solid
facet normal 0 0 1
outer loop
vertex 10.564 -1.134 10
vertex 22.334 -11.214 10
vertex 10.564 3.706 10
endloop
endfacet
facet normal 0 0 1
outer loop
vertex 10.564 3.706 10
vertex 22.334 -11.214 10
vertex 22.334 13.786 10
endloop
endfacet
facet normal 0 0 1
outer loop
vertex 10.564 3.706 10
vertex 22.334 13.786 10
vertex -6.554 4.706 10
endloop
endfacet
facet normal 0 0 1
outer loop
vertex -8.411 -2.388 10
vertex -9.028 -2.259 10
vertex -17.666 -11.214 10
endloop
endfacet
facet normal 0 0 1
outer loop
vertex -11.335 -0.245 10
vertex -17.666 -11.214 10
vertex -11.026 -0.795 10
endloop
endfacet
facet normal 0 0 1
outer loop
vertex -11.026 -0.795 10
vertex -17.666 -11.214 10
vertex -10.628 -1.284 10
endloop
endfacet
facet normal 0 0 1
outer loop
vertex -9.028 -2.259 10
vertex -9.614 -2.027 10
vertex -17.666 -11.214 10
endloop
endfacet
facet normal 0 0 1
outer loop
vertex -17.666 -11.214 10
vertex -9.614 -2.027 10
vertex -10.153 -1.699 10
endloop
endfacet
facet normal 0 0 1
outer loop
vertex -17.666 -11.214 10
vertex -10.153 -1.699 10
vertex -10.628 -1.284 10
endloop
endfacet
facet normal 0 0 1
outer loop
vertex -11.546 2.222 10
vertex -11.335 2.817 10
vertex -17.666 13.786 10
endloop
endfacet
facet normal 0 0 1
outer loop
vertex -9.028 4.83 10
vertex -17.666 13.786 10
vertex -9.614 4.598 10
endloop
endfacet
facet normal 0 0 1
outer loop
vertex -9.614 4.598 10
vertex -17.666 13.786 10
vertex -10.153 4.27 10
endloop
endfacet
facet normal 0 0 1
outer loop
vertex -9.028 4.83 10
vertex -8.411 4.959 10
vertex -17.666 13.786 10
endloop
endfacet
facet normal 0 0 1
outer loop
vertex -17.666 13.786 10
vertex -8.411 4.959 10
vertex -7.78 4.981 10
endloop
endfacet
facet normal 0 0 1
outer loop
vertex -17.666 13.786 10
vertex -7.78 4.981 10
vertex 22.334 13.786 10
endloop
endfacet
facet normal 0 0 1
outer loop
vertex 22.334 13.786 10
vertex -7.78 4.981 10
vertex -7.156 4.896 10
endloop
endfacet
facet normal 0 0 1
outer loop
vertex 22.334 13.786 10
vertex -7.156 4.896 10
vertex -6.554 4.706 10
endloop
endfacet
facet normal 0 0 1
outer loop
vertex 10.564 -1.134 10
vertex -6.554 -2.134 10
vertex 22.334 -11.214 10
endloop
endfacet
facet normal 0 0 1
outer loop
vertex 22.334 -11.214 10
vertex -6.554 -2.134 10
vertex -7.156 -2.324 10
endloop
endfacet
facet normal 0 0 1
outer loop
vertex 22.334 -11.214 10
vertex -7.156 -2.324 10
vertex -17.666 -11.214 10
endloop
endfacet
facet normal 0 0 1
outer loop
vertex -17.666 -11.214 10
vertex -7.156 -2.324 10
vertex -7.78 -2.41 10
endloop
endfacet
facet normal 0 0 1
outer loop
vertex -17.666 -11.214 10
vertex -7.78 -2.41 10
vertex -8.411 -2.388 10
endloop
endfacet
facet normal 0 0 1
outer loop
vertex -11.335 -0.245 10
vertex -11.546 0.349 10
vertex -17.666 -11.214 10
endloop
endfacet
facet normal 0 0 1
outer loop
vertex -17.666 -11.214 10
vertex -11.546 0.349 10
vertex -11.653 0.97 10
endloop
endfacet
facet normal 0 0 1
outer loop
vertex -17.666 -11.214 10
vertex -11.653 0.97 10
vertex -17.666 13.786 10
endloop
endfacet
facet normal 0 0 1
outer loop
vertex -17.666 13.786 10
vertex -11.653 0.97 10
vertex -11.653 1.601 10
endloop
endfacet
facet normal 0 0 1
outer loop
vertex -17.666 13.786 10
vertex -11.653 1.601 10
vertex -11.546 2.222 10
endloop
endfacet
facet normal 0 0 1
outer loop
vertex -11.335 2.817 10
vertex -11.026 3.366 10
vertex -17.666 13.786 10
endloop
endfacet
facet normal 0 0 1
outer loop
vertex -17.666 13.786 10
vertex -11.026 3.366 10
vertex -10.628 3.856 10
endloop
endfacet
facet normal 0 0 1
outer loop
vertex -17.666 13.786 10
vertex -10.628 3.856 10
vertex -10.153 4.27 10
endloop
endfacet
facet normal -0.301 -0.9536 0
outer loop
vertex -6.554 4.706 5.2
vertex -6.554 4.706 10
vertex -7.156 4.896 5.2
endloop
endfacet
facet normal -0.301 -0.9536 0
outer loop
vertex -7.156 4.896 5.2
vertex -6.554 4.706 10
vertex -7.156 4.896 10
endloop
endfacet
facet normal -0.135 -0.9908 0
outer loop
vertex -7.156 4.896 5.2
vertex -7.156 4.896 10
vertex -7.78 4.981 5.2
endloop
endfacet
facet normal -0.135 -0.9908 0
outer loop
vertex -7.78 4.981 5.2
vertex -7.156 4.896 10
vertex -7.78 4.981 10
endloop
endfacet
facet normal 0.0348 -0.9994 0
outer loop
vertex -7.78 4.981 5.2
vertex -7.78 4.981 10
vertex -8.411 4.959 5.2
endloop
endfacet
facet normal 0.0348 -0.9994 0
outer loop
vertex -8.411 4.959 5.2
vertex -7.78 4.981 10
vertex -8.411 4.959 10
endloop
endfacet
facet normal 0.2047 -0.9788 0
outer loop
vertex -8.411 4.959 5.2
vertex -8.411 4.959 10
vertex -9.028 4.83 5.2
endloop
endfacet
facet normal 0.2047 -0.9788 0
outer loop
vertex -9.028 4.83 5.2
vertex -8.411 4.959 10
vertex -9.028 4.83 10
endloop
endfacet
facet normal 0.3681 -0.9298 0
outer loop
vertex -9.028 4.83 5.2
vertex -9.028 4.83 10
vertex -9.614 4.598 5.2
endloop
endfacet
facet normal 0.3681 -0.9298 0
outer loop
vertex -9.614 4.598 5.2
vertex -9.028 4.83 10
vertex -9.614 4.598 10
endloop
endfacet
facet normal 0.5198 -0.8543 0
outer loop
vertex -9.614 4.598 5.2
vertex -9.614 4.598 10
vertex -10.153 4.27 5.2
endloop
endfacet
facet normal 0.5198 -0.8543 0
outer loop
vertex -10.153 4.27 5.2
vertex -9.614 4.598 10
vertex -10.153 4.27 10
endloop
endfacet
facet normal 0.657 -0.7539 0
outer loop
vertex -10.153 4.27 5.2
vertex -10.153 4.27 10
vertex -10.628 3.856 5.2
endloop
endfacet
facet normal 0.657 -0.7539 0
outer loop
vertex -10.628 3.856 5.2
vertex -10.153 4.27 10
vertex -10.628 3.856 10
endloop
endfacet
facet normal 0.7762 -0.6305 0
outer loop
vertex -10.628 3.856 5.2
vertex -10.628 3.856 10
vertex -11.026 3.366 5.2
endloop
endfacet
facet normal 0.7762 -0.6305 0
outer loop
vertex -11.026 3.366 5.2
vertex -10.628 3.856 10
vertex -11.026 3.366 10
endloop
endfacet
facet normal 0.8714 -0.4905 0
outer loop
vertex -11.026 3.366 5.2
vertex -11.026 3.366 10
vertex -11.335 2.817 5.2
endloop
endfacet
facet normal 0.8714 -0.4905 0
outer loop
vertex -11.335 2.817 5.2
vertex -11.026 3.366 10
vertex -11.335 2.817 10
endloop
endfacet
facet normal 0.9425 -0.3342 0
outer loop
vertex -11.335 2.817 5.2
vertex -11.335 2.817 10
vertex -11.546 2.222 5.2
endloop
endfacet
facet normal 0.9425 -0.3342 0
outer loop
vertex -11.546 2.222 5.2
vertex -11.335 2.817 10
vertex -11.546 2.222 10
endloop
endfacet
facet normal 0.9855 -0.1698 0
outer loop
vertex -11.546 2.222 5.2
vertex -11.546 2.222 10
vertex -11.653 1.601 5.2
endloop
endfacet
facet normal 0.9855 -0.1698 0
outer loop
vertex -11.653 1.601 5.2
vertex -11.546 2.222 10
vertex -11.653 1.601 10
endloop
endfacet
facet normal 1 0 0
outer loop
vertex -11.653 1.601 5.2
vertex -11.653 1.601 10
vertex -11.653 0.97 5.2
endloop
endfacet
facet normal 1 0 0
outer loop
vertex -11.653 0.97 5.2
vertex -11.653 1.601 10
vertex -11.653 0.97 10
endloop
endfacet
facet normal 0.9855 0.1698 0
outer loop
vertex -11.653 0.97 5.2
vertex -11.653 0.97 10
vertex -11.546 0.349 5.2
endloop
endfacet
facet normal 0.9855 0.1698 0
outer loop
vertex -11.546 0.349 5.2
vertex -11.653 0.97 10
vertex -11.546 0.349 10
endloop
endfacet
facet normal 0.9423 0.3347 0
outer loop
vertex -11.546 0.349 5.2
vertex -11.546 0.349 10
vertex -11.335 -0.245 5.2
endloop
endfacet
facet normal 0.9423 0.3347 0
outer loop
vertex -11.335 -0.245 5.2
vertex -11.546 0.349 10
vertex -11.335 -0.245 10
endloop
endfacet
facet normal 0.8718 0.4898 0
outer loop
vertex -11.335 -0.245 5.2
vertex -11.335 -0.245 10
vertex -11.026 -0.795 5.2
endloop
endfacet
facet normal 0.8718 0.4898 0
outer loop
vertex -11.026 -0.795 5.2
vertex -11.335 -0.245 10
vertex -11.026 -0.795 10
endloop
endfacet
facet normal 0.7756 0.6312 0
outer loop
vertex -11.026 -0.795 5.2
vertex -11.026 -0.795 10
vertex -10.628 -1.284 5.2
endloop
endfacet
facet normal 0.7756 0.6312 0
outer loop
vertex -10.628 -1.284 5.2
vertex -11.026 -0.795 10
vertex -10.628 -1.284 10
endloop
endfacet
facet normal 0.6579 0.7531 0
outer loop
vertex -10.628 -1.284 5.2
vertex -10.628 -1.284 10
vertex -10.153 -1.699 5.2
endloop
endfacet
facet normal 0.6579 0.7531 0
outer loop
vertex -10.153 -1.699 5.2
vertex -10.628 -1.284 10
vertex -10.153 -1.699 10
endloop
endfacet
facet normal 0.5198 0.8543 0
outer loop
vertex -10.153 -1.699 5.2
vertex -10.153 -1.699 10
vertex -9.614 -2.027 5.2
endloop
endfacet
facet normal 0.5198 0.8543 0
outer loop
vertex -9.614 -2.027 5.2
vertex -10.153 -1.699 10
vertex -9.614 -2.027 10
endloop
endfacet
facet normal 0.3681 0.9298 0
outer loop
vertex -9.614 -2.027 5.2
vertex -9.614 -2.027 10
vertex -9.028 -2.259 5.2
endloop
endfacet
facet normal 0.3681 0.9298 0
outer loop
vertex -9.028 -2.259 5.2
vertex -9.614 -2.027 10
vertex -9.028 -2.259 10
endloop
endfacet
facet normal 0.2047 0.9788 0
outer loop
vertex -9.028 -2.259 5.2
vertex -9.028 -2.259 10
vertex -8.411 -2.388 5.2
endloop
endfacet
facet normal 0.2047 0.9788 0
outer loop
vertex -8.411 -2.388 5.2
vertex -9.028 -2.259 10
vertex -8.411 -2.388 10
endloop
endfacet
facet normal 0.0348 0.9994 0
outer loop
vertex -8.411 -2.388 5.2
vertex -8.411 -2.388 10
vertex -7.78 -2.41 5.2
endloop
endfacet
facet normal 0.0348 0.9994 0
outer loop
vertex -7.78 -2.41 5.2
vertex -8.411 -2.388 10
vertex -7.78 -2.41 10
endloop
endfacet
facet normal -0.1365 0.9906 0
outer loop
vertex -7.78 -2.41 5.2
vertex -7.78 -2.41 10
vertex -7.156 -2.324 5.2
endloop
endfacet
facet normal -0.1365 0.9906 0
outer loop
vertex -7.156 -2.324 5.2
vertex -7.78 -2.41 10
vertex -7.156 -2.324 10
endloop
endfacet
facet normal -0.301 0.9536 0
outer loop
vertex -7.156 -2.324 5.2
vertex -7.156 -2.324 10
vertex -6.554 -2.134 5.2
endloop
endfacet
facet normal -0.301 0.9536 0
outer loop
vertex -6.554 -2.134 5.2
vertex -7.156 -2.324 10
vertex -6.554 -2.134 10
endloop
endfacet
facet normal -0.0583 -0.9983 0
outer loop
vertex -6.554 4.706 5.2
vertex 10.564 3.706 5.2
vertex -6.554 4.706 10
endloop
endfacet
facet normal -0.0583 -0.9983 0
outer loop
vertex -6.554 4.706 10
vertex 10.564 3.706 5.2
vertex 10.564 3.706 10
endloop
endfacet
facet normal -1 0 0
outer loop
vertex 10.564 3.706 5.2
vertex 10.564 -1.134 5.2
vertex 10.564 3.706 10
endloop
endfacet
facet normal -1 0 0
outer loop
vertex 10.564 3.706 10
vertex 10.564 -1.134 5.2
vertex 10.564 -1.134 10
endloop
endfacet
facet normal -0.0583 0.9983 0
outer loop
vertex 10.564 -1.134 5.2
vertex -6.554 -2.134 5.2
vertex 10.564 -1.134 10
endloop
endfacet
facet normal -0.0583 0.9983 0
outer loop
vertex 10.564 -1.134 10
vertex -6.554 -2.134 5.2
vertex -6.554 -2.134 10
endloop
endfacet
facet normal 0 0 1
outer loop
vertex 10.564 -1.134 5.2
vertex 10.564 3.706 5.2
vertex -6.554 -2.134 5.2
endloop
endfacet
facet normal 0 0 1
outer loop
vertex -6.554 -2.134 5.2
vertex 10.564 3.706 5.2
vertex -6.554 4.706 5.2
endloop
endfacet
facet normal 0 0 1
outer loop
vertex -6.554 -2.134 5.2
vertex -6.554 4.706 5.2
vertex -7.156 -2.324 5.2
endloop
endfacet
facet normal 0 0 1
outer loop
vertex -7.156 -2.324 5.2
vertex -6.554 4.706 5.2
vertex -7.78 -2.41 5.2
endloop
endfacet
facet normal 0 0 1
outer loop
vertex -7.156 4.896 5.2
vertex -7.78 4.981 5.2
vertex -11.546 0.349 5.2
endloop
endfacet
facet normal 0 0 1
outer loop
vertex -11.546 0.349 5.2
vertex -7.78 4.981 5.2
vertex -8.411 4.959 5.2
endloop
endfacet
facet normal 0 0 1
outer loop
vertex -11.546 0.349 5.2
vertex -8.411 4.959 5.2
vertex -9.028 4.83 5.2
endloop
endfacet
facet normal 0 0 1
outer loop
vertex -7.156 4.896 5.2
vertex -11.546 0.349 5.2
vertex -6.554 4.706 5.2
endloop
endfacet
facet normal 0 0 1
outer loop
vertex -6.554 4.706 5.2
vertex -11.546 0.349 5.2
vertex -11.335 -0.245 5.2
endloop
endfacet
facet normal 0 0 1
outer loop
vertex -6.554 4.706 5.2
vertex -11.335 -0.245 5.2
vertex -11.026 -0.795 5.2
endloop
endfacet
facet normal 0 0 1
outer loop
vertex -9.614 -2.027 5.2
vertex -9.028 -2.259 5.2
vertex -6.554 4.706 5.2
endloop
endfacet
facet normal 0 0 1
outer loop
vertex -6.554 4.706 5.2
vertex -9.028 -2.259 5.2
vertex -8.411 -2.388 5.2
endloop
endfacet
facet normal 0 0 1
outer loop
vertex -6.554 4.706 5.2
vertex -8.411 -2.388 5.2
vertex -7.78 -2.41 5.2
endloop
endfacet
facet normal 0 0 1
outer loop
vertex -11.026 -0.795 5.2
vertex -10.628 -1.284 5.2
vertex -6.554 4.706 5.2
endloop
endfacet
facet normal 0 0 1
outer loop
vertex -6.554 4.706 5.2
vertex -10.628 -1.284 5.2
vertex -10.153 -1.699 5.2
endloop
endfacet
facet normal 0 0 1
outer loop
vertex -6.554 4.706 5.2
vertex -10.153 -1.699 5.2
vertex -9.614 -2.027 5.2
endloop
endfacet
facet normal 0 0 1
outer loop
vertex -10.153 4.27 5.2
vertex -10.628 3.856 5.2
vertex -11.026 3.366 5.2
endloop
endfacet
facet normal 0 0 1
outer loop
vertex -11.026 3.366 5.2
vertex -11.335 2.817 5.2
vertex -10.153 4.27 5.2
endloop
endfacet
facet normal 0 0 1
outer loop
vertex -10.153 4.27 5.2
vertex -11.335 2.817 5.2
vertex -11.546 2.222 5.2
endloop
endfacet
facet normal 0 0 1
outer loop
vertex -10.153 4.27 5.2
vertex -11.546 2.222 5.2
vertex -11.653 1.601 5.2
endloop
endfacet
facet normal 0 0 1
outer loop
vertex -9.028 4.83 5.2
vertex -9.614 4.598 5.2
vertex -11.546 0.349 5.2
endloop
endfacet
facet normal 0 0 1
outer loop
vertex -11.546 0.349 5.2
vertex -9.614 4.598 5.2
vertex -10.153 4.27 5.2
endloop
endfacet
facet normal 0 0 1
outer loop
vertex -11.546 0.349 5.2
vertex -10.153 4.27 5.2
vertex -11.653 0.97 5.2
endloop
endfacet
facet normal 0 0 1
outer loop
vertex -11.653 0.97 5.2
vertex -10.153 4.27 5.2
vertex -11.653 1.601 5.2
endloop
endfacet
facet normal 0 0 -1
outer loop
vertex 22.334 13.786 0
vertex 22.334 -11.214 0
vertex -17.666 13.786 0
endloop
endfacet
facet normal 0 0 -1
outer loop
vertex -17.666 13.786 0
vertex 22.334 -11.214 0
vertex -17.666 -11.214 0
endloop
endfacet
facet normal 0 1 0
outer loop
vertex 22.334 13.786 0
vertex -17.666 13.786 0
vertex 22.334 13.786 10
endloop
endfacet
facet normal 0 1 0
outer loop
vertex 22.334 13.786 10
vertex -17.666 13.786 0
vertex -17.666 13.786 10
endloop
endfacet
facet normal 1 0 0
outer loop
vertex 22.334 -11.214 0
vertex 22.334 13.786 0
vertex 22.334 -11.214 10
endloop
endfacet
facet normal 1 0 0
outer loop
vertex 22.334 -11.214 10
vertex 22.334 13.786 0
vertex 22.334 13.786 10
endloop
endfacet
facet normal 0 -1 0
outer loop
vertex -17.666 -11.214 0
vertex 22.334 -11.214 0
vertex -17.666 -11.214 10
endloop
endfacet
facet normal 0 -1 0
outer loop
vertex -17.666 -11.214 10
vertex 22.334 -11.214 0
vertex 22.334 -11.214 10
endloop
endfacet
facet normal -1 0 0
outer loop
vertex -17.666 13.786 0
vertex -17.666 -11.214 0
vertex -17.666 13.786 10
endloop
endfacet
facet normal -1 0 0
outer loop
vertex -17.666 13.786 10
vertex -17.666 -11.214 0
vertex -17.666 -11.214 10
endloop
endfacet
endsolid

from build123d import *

# Parameters (mm, degrees)
SKETCH2_W           = 40
SKETCH2_H           = 25
BOSS_EXTRUDE1_DEPTH = 15
SKETCH3_W           = 25
SKETCH3_H           = 12
CUT_EXTRUDE1_DEPTH  = 5
CUT_EXTRUDE2_DEPTH  = 4.8
SKETCH7_W           = 40
SKETCH7_H           = 25
CUT_EXTRUDE3_DEPTH  = 5


with BuildPart() as part:
    # Sketch2 → Boss-Extrude1 (new body)
    with BuildSketch(Plane.XY):
        with Locations((2.333785617, 1.285617368)):
            Rectangle(SKETCH2_W, SKETCH2_H)
    extrude(amount=BOSS_EXTRUDE1_DEPTH)

    # Sketch3 → Cut-Extrude1 (cut)
    with BuildSketch(Plane.XY.offset(15)):
        with Locations((-0.166214383, 1.285617368)):
            Rectangle(SKETCH3_W, SKETCH3_H)
    extrude(amount=-CUT_EXTRUDE1_DEPTH, mode=Mode.SUBTRACT)

    # Sketch5 → Cut-Extrude2 (cut)
    with BuildSketch(Plane.XY.offset(10)):
        with BuildLine():
            Line((10.563785617, -1.134382632), (10.563785617, 3.705617368))
            Line((10.563785617, 3.705617368), (-6.554265375, 4.705617368))
            ThreePointArc((-6.554265375, 4.705617368), (-11.666214383, 1.285617368), (-6.554265375, -2.134382632))
            Line((-6.554265375, -2.134382632), (10.563785617, -1.134382632))
        make_face()
    extrude(amount=-CUT_EXTRUDE2_DEPTH, mode=Mode.SUBTRACT)

    # Sketch7 → Cut-Extrude3 (cut)
    with BuildSketch(Plane.XY.offset(15)):
        with Locations((2.333785617, 1.285617368)):
            Rectangle(SKETCH7_W, SKETCH7_H)
    extrude(amount=-CUT_EXTRUDE3_DEPTH, mode=Mode.SUBTRACT)


solid = part.part
